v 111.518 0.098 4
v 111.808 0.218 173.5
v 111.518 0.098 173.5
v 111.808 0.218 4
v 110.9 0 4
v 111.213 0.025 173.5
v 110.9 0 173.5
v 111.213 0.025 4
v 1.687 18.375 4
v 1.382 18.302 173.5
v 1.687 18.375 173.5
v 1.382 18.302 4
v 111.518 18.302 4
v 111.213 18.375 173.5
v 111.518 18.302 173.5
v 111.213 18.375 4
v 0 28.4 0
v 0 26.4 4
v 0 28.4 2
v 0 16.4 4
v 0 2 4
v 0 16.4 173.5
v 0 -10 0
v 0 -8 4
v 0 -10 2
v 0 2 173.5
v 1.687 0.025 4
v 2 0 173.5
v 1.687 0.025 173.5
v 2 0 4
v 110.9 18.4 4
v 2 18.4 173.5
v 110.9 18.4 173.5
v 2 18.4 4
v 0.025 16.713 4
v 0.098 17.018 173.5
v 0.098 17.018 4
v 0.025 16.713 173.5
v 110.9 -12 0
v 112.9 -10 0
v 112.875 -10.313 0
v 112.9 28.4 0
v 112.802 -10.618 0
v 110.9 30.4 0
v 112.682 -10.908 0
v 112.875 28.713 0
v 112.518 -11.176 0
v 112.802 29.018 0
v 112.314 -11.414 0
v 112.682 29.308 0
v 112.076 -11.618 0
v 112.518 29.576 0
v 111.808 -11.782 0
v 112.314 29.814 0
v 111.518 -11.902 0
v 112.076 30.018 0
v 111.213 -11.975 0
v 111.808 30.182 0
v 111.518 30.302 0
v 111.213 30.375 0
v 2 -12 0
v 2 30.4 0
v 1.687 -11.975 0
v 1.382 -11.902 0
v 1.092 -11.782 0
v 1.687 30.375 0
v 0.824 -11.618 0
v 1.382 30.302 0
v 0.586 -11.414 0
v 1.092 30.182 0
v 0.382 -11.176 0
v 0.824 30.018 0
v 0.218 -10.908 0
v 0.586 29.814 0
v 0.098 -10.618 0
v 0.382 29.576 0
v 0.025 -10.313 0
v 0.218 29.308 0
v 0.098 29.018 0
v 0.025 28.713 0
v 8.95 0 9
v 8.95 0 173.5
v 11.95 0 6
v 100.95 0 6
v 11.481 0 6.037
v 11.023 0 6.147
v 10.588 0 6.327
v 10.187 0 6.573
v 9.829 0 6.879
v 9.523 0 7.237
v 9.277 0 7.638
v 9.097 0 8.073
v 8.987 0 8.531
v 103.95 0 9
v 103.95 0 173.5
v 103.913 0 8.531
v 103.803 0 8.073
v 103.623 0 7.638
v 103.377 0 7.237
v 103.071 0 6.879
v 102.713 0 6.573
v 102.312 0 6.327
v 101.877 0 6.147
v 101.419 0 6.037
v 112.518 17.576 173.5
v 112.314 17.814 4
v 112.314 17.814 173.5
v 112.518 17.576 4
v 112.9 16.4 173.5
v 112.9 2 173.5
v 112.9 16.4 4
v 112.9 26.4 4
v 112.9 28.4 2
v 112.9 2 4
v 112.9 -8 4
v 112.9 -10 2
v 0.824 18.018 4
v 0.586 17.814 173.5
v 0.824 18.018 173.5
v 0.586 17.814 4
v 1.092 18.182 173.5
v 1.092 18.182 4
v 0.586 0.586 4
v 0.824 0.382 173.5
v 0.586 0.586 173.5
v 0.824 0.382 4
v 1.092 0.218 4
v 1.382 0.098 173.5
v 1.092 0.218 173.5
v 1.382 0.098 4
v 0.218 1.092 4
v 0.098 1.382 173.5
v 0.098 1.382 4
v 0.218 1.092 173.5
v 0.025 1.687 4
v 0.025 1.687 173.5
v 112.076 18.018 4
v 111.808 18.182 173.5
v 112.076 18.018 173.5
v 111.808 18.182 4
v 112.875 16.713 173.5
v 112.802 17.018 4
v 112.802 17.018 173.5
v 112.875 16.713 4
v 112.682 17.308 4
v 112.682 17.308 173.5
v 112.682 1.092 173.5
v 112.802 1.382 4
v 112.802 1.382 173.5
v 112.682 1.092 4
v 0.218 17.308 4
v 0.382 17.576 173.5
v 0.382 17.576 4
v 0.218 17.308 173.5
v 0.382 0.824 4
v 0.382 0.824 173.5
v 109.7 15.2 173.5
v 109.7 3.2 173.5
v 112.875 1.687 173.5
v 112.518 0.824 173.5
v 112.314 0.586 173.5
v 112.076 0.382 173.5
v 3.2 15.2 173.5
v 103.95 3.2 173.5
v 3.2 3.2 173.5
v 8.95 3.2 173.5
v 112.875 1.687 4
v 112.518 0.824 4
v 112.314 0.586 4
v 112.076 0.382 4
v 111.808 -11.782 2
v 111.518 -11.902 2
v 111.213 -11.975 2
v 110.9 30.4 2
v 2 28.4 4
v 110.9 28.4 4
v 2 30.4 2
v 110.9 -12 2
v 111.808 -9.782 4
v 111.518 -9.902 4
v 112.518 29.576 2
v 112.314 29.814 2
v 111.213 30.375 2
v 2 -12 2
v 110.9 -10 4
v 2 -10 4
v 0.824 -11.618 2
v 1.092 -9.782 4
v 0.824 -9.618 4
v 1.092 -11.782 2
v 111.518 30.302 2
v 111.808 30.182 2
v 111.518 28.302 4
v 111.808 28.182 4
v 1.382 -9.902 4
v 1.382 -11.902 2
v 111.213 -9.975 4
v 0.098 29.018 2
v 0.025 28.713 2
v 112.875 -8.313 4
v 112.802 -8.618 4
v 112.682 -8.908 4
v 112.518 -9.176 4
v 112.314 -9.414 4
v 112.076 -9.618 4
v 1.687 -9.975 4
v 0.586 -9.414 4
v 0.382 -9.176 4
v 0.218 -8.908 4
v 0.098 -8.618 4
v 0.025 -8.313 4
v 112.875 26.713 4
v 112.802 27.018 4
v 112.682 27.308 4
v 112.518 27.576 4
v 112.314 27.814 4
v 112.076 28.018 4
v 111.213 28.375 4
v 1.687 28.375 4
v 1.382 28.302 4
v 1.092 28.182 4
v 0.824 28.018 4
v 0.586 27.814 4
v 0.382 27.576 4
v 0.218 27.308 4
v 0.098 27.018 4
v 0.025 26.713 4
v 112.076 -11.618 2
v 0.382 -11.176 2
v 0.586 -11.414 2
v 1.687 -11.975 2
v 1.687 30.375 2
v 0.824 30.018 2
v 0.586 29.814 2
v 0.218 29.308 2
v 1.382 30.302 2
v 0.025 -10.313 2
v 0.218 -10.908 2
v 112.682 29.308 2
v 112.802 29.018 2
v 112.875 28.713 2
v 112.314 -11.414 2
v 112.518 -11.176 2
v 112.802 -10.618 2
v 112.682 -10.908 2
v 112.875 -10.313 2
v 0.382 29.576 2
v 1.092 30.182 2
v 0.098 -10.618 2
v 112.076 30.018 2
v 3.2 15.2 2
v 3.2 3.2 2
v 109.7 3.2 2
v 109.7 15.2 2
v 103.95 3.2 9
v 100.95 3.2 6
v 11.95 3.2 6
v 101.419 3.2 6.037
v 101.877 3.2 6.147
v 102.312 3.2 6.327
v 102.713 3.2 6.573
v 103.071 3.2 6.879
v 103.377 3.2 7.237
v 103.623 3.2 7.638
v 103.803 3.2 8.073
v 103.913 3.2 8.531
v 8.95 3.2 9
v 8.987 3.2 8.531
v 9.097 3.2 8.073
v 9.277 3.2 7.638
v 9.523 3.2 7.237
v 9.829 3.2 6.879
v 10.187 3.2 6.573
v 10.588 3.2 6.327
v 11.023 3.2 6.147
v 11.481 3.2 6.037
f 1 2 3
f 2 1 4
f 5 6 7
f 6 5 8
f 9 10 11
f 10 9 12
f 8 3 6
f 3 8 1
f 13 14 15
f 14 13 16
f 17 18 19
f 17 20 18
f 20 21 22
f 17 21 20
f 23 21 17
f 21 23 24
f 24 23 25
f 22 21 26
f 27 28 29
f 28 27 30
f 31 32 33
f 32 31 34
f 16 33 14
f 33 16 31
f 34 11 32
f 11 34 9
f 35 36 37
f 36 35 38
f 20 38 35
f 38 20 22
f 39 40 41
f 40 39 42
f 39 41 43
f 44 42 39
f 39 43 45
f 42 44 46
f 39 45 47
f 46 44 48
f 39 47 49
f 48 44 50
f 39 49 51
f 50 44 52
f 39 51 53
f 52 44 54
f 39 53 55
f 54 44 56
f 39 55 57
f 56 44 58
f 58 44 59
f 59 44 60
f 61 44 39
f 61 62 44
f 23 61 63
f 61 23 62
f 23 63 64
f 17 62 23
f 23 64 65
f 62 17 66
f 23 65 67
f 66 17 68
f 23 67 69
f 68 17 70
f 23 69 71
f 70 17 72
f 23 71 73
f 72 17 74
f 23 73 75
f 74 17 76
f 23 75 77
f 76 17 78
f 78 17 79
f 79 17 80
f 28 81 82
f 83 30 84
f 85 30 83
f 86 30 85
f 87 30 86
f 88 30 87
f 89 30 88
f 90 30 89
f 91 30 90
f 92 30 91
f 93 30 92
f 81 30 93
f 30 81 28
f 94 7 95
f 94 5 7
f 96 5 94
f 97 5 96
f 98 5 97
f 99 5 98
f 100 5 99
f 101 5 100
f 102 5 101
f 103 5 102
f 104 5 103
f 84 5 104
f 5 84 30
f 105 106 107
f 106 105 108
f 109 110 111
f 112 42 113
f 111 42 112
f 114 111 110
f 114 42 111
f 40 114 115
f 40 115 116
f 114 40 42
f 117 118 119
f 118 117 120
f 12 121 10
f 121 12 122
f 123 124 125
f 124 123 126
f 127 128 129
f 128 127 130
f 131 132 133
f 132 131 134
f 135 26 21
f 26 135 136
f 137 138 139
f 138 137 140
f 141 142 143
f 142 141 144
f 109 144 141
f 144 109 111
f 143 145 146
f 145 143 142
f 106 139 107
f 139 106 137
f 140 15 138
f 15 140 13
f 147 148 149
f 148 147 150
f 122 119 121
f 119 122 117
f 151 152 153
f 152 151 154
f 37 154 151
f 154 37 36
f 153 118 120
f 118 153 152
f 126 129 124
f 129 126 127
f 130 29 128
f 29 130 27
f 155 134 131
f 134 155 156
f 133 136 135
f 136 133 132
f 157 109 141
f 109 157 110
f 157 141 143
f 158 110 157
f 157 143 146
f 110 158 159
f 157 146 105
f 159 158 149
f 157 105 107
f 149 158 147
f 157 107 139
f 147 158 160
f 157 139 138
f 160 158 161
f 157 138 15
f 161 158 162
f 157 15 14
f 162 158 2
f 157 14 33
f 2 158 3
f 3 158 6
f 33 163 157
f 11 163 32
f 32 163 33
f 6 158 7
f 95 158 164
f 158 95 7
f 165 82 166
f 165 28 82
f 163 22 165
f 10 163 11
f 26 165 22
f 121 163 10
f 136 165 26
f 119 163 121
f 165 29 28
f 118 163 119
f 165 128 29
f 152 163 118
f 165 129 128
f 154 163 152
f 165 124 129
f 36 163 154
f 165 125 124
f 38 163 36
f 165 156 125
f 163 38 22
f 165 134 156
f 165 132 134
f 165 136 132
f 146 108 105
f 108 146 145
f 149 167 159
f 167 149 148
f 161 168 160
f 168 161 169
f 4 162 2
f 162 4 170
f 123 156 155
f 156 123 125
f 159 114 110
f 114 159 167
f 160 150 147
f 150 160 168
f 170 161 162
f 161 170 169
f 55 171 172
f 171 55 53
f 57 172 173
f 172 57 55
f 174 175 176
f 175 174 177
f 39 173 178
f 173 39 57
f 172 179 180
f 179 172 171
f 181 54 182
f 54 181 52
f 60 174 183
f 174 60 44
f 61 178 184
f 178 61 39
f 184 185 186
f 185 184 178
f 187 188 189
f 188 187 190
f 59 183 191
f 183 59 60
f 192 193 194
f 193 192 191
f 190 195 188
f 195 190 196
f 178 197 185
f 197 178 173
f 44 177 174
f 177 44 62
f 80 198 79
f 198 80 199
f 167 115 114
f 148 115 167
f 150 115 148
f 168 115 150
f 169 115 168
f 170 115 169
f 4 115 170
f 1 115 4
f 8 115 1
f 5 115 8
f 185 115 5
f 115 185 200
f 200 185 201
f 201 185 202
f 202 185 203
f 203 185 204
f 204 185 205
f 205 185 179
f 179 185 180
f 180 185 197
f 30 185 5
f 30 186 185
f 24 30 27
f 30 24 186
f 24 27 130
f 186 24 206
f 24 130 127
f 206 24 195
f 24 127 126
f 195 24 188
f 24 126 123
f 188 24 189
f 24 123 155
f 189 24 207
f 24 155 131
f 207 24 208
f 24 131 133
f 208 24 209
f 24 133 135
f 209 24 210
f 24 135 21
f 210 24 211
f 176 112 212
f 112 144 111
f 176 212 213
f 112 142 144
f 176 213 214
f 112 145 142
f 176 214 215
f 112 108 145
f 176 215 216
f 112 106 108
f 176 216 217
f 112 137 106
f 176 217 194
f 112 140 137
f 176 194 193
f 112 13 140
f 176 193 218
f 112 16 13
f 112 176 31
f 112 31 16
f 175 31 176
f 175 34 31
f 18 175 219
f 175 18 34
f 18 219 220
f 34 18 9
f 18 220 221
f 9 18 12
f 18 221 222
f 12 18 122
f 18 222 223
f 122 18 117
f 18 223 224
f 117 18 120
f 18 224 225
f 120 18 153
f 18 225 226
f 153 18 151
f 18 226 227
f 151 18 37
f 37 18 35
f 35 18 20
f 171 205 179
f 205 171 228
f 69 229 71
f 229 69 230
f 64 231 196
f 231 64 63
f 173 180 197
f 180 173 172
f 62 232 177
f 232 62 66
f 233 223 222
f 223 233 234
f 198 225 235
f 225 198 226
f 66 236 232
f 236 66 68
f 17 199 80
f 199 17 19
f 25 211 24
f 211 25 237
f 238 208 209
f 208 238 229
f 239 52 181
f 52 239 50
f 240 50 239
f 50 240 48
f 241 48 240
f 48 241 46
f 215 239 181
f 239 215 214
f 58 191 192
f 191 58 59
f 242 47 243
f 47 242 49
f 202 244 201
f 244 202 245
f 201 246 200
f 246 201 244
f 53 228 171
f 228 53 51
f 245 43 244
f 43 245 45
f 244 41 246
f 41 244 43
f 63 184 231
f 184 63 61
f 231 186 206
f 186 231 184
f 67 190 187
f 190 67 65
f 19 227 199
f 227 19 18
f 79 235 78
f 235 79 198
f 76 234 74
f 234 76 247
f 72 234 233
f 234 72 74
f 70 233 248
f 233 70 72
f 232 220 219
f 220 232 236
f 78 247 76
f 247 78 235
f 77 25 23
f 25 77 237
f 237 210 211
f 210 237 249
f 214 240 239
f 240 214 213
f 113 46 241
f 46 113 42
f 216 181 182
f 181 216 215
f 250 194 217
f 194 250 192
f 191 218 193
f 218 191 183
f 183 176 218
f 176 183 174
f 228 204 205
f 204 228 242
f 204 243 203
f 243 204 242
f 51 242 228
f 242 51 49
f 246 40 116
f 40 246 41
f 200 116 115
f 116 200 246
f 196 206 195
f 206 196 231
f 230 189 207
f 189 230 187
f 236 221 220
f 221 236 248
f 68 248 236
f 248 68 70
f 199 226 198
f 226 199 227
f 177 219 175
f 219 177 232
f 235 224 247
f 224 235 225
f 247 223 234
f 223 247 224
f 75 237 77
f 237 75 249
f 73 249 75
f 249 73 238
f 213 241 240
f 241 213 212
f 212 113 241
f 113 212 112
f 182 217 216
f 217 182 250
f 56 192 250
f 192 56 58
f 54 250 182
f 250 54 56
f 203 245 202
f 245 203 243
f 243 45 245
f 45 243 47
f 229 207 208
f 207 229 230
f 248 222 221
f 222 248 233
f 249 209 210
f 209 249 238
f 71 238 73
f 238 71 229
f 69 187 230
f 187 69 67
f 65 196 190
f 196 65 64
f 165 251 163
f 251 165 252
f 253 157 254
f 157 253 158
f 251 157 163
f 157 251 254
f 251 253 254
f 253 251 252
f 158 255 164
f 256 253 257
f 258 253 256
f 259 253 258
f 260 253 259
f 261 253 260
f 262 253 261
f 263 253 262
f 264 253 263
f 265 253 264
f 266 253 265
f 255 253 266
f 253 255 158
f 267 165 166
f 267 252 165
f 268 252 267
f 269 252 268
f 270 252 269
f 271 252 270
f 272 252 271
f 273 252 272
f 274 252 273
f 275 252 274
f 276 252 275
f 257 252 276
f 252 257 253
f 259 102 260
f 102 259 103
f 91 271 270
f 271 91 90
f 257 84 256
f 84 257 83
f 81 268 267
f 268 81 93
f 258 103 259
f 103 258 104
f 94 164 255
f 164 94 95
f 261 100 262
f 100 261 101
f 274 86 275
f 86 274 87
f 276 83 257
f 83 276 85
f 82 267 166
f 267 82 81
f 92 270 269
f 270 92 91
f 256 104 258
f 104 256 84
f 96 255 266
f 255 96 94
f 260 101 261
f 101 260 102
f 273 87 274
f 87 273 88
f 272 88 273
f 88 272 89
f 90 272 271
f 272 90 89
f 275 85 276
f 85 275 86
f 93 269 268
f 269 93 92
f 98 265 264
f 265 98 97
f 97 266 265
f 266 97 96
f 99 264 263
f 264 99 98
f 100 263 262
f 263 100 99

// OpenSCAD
// switch-case-display-01.scad
// Display box for ONE sealed Nintendo Switch game case, standing upright.
// An open-top sleeve with a floor: the case drops in from the top. The front
// is a U frame (sides and bottom only), so the cover shows all the way up and
// the upright print has no bridges. A low flared foot (12 mm front and back)
// keeps it from tipping.
//
// Optional clear sheet: set sheet_t (e.g. 0.5-1 mm PET/acrylic about
// 105 x 168 mm) and drop it in before the case; the case holds it against
// the inside of the frame.
//
// Case size: nominal Switch / Switch 2 case, ~105 x 170 x 11 mm. NOT measured
// on the user's sealed case yet: measure it (shrink wrap included) and adjust
// case_w / case_h / case_t before printing.
//
// Print: one part, upright on its foot, no supports. Export:
//   "C:/Program Files/OpenSCAD/openscad.com" -o <abs>/switch-case-display-01.stl <abs>/switch-case-display-01.scad

part = "print"; // "print" | "check" (with the case ghost)

/* [Case - nominal, measure yours] */
case_w = 105;   // X, width
case_h = 170;   // Z, height (standing)
case_t = 11;    // Y, thickness

/* [Fit] */
fit_w = 1.5;    // total play in width
fit_h = 1.5;    // walls stand this much above the case
fit_t = 1.0;    // total play in thickness
sheet_t = 0;    // optional clear sheet behind the window (0 = none)

/* [Shape] */
wall    = 3.2;  // all walls (8 lines of a 0.4 nozzle)
floor_t = 2.0;
r       = 2.0;  // outer corner radius
foot    = 12;   // foot sticks out this much front and back
foot_h  = 4;
foot_ch = 2;    // chamfer on the foot top edge

/* [Window] */
window_border = 5;  // frame covers this much of the case on each side
window_r      = 3;  // bottom corner radius

$fn = 40;

// ---------------------------------------------------------------------
in_w = case_w + fit_w;
in_t = case_t + fit_t + sheet_t;
in_h = case_h + fit_h;

body_w = in_w + 2 * wall;
body_t = in_t + 2 * wall;

body_h = floor_t + in_h;

window_w  = case_w - 2 * window_border;
window_z0 = foot_h + 2;

echo(str("switch-case-display-01: sleeve ", body_w, " x ", body_t + 2 * foot, " (foot) x ", body_h,
         " | window ", window_w, " wide, open at the top | ", body_h - floor_t - case_h,
         " mm of wall above the case"));

module rbox(w, t, h, rr) {
    translate([rr, rr, 0]) linear_extrude(h) offset(r = rr) square([w - 2 * rr, t - 2 * rr]);
}

module foot_block() {
    hull() {
        translate([0, -foot, 0]) rbox(body_w, body_t + 2 * foot, foot_h - foot_ch, r);
        translate([0, -foot + foot_ch, 0]) rbox(body_w, body_t + 2 * foot - 2 * foot_ch, foot_h, r);
    }
}

module window_cut() {
    translate([(body_w - window_w) / 2, wall + 1, window_z0])
        rotate([90, 0, 0])
            linear_extrude(wall + 2)
                translate([window_r, window_r])
                    offset(r = window_r)
                        square([window_w - 2 * window_r, body_h]);  // runs out the top: U
}

module body() {
    difference() {
        union() {
            rbox(body_w, body_t, body_h, r);
            foot_block();
        }
        // cavity, open on top
        translate([wall, wall, floor_t]) cube([in_w, in_t, body_h]);
        window_cut();
    }
}

module case_ghost() {
    translate([wall + fit_w / 2, wall + sheet_t + fit_t / 2, floor_t]) cube([case_w, case_t, case_h]);
}

if (part == "check") { body(); %case_ghost(); }
else body();
